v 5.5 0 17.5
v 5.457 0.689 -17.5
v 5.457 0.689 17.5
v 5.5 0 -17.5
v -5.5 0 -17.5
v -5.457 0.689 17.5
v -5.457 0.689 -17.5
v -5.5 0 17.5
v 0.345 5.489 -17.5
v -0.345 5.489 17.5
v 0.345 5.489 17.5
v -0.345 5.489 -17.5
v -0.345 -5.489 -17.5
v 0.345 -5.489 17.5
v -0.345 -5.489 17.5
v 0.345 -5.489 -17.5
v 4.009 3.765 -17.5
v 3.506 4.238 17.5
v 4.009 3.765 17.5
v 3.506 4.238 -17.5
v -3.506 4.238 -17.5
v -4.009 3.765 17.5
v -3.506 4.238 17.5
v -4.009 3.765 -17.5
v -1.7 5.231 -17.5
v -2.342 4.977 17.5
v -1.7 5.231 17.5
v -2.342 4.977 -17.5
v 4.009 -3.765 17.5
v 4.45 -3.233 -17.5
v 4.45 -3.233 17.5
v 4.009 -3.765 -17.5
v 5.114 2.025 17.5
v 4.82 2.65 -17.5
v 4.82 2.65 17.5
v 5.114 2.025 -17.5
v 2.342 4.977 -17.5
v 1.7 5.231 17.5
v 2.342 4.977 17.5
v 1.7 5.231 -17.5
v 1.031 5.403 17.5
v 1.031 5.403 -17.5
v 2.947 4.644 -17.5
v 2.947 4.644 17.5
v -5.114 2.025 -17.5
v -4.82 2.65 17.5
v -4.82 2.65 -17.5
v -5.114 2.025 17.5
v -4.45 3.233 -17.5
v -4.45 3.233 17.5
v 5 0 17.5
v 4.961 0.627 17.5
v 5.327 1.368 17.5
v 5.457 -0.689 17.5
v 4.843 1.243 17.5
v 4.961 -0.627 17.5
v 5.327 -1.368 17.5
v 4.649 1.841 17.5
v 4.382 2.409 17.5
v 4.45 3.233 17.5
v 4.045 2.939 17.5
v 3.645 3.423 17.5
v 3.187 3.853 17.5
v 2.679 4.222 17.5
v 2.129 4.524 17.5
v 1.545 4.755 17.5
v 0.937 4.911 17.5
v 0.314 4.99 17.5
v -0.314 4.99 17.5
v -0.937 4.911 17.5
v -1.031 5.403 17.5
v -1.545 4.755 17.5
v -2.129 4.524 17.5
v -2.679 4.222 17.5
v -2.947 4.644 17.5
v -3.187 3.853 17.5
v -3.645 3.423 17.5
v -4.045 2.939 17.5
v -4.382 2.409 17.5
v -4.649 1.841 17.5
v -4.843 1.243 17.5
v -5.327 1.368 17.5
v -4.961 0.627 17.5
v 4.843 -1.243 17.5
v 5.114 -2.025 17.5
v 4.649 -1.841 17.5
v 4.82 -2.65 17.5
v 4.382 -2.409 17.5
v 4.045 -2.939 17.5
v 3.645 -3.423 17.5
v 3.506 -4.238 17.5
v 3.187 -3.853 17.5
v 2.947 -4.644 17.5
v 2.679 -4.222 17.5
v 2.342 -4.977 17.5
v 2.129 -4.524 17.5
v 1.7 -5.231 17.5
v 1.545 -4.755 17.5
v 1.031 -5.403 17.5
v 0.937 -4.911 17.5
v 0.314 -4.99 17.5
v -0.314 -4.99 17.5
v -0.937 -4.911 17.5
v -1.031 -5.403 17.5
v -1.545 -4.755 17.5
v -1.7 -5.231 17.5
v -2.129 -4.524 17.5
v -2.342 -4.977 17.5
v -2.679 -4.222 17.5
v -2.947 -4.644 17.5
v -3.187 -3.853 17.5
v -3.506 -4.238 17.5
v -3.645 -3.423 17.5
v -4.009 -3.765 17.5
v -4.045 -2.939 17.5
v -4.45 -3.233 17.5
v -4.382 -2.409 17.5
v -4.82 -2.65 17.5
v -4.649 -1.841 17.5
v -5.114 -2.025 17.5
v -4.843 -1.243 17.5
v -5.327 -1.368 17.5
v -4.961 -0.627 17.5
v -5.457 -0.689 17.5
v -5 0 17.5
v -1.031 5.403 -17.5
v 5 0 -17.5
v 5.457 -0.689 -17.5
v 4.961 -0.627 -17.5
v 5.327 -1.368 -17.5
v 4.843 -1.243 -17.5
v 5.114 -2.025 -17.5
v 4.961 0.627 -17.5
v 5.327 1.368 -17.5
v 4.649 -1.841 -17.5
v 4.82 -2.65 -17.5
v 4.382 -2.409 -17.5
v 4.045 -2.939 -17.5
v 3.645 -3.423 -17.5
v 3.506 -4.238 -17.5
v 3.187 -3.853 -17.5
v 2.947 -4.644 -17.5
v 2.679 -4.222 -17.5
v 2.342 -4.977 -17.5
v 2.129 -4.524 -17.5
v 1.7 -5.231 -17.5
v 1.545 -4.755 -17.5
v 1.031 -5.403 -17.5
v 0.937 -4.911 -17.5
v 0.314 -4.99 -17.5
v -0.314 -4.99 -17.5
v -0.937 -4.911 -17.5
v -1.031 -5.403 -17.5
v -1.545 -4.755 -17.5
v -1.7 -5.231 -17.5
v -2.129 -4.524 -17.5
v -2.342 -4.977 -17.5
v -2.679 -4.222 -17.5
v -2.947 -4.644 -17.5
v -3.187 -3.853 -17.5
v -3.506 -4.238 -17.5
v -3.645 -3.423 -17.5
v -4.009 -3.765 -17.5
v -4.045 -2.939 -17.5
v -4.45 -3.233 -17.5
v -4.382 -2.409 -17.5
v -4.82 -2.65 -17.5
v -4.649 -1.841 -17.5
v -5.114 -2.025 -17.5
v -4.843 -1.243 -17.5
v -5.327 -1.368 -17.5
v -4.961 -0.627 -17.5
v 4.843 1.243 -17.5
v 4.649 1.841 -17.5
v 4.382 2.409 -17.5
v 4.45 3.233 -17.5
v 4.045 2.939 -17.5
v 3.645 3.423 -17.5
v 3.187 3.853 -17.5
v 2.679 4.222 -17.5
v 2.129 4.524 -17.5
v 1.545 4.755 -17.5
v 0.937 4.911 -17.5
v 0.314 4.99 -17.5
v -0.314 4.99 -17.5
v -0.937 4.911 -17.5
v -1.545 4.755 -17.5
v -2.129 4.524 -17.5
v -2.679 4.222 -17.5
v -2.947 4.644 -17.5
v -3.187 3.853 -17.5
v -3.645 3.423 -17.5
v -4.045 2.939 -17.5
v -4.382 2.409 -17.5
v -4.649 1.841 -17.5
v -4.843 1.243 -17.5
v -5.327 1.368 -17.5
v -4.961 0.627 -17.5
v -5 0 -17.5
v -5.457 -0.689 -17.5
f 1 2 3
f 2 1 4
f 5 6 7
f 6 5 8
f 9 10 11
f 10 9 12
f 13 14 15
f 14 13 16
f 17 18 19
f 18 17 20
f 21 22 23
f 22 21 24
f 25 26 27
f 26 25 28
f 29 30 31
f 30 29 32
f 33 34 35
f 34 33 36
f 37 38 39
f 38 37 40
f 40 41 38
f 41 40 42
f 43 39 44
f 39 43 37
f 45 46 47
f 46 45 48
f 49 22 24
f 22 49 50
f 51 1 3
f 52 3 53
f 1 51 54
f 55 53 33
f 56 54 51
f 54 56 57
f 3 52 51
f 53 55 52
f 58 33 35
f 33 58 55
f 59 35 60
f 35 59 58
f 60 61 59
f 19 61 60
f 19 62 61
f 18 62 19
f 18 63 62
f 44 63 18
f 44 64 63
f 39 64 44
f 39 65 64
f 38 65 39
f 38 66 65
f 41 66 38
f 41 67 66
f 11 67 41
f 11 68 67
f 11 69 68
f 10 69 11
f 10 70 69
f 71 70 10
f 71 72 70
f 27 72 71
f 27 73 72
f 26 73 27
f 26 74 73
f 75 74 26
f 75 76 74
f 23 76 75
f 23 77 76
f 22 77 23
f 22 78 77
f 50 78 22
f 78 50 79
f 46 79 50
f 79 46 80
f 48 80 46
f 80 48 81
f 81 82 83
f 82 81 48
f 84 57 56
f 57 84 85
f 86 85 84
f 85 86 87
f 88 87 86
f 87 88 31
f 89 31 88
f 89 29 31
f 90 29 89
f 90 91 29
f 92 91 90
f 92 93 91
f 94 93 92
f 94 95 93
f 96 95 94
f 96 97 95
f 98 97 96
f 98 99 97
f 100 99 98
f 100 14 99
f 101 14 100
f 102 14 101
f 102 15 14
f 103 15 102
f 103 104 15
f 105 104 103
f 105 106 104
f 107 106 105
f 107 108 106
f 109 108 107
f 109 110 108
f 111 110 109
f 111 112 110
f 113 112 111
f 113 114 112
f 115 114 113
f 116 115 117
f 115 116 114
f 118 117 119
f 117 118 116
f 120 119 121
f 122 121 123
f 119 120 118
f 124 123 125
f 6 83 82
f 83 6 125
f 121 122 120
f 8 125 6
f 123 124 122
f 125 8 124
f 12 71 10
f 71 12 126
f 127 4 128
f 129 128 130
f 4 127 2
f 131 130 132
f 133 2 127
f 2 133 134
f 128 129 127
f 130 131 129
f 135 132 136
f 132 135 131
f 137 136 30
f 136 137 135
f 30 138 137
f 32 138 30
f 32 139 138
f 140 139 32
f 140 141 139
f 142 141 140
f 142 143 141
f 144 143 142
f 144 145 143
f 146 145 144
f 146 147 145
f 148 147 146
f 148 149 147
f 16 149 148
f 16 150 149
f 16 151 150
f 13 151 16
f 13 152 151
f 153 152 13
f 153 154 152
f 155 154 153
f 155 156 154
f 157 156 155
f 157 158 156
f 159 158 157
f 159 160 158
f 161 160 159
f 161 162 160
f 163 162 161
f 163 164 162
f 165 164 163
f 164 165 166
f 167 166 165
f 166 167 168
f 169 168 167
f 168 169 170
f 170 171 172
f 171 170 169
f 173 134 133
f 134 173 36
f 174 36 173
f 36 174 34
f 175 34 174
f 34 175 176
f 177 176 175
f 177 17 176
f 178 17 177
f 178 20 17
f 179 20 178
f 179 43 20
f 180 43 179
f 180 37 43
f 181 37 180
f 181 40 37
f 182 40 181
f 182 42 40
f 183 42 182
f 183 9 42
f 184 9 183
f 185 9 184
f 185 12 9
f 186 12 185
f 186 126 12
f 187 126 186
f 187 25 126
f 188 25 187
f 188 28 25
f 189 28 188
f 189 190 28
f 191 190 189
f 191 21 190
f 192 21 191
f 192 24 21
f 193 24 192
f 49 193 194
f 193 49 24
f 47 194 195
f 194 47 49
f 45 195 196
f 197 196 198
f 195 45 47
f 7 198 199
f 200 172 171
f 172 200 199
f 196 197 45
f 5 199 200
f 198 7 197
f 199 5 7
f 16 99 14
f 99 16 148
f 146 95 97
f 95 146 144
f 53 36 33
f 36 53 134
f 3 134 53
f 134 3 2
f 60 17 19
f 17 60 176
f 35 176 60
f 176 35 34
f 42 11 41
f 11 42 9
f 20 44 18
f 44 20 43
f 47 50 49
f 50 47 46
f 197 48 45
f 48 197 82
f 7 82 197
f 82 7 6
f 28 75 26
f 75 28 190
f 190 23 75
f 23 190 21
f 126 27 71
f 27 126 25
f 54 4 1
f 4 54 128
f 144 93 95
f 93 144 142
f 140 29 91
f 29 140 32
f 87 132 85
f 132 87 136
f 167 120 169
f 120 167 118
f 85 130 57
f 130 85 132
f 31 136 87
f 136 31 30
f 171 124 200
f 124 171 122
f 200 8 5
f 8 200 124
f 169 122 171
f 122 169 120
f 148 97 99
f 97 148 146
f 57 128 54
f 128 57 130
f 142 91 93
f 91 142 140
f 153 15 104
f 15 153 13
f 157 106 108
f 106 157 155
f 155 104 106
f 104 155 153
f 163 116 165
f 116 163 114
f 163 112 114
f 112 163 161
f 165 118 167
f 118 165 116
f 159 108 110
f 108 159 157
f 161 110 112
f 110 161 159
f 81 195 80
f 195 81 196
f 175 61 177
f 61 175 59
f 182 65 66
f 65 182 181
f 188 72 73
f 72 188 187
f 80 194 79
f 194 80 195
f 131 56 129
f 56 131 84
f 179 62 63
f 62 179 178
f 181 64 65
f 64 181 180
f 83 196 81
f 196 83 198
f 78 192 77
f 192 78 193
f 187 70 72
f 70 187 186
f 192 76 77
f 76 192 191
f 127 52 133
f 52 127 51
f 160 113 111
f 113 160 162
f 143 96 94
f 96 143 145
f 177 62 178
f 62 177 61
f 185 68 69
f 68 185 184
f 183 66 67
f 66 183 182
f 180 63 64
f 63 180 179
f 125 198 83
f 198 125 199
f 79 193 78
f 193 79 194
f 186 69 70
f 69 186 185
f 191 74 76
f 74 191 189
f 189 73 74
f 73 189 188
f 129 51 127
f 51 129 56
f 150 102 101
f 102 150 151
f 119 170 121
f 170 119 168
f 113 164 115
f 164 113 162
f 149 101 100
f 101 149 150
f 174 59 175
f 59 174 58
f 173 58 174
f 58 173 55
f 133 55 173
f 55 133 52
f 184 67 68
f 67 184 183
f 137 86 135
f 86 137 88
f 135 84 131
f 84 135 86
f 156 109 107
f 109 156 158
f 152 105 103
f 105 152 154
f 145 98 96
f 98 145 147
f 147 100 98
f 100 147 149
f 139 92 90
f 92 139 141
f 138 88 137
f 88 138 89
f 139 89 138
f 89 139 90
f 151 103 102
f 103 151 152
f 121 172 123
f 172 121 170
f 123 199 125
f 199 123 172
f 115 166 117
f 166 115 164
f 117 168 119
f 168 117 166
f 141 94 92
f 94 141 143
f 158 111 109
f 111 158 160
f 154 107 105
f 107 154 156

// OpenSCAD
$fn = 50;


difference() {
	union() {
		translate(v = [0, 0, -17.5000000000]) {
			cylinder(h = 35, r = 5.5000000000);
		}
	}
	union() {
		translate(v = [0, 0, -100.0000000000]) {
			cylinder(h = 200, r = 5.0000000000);
		}
	}
}
